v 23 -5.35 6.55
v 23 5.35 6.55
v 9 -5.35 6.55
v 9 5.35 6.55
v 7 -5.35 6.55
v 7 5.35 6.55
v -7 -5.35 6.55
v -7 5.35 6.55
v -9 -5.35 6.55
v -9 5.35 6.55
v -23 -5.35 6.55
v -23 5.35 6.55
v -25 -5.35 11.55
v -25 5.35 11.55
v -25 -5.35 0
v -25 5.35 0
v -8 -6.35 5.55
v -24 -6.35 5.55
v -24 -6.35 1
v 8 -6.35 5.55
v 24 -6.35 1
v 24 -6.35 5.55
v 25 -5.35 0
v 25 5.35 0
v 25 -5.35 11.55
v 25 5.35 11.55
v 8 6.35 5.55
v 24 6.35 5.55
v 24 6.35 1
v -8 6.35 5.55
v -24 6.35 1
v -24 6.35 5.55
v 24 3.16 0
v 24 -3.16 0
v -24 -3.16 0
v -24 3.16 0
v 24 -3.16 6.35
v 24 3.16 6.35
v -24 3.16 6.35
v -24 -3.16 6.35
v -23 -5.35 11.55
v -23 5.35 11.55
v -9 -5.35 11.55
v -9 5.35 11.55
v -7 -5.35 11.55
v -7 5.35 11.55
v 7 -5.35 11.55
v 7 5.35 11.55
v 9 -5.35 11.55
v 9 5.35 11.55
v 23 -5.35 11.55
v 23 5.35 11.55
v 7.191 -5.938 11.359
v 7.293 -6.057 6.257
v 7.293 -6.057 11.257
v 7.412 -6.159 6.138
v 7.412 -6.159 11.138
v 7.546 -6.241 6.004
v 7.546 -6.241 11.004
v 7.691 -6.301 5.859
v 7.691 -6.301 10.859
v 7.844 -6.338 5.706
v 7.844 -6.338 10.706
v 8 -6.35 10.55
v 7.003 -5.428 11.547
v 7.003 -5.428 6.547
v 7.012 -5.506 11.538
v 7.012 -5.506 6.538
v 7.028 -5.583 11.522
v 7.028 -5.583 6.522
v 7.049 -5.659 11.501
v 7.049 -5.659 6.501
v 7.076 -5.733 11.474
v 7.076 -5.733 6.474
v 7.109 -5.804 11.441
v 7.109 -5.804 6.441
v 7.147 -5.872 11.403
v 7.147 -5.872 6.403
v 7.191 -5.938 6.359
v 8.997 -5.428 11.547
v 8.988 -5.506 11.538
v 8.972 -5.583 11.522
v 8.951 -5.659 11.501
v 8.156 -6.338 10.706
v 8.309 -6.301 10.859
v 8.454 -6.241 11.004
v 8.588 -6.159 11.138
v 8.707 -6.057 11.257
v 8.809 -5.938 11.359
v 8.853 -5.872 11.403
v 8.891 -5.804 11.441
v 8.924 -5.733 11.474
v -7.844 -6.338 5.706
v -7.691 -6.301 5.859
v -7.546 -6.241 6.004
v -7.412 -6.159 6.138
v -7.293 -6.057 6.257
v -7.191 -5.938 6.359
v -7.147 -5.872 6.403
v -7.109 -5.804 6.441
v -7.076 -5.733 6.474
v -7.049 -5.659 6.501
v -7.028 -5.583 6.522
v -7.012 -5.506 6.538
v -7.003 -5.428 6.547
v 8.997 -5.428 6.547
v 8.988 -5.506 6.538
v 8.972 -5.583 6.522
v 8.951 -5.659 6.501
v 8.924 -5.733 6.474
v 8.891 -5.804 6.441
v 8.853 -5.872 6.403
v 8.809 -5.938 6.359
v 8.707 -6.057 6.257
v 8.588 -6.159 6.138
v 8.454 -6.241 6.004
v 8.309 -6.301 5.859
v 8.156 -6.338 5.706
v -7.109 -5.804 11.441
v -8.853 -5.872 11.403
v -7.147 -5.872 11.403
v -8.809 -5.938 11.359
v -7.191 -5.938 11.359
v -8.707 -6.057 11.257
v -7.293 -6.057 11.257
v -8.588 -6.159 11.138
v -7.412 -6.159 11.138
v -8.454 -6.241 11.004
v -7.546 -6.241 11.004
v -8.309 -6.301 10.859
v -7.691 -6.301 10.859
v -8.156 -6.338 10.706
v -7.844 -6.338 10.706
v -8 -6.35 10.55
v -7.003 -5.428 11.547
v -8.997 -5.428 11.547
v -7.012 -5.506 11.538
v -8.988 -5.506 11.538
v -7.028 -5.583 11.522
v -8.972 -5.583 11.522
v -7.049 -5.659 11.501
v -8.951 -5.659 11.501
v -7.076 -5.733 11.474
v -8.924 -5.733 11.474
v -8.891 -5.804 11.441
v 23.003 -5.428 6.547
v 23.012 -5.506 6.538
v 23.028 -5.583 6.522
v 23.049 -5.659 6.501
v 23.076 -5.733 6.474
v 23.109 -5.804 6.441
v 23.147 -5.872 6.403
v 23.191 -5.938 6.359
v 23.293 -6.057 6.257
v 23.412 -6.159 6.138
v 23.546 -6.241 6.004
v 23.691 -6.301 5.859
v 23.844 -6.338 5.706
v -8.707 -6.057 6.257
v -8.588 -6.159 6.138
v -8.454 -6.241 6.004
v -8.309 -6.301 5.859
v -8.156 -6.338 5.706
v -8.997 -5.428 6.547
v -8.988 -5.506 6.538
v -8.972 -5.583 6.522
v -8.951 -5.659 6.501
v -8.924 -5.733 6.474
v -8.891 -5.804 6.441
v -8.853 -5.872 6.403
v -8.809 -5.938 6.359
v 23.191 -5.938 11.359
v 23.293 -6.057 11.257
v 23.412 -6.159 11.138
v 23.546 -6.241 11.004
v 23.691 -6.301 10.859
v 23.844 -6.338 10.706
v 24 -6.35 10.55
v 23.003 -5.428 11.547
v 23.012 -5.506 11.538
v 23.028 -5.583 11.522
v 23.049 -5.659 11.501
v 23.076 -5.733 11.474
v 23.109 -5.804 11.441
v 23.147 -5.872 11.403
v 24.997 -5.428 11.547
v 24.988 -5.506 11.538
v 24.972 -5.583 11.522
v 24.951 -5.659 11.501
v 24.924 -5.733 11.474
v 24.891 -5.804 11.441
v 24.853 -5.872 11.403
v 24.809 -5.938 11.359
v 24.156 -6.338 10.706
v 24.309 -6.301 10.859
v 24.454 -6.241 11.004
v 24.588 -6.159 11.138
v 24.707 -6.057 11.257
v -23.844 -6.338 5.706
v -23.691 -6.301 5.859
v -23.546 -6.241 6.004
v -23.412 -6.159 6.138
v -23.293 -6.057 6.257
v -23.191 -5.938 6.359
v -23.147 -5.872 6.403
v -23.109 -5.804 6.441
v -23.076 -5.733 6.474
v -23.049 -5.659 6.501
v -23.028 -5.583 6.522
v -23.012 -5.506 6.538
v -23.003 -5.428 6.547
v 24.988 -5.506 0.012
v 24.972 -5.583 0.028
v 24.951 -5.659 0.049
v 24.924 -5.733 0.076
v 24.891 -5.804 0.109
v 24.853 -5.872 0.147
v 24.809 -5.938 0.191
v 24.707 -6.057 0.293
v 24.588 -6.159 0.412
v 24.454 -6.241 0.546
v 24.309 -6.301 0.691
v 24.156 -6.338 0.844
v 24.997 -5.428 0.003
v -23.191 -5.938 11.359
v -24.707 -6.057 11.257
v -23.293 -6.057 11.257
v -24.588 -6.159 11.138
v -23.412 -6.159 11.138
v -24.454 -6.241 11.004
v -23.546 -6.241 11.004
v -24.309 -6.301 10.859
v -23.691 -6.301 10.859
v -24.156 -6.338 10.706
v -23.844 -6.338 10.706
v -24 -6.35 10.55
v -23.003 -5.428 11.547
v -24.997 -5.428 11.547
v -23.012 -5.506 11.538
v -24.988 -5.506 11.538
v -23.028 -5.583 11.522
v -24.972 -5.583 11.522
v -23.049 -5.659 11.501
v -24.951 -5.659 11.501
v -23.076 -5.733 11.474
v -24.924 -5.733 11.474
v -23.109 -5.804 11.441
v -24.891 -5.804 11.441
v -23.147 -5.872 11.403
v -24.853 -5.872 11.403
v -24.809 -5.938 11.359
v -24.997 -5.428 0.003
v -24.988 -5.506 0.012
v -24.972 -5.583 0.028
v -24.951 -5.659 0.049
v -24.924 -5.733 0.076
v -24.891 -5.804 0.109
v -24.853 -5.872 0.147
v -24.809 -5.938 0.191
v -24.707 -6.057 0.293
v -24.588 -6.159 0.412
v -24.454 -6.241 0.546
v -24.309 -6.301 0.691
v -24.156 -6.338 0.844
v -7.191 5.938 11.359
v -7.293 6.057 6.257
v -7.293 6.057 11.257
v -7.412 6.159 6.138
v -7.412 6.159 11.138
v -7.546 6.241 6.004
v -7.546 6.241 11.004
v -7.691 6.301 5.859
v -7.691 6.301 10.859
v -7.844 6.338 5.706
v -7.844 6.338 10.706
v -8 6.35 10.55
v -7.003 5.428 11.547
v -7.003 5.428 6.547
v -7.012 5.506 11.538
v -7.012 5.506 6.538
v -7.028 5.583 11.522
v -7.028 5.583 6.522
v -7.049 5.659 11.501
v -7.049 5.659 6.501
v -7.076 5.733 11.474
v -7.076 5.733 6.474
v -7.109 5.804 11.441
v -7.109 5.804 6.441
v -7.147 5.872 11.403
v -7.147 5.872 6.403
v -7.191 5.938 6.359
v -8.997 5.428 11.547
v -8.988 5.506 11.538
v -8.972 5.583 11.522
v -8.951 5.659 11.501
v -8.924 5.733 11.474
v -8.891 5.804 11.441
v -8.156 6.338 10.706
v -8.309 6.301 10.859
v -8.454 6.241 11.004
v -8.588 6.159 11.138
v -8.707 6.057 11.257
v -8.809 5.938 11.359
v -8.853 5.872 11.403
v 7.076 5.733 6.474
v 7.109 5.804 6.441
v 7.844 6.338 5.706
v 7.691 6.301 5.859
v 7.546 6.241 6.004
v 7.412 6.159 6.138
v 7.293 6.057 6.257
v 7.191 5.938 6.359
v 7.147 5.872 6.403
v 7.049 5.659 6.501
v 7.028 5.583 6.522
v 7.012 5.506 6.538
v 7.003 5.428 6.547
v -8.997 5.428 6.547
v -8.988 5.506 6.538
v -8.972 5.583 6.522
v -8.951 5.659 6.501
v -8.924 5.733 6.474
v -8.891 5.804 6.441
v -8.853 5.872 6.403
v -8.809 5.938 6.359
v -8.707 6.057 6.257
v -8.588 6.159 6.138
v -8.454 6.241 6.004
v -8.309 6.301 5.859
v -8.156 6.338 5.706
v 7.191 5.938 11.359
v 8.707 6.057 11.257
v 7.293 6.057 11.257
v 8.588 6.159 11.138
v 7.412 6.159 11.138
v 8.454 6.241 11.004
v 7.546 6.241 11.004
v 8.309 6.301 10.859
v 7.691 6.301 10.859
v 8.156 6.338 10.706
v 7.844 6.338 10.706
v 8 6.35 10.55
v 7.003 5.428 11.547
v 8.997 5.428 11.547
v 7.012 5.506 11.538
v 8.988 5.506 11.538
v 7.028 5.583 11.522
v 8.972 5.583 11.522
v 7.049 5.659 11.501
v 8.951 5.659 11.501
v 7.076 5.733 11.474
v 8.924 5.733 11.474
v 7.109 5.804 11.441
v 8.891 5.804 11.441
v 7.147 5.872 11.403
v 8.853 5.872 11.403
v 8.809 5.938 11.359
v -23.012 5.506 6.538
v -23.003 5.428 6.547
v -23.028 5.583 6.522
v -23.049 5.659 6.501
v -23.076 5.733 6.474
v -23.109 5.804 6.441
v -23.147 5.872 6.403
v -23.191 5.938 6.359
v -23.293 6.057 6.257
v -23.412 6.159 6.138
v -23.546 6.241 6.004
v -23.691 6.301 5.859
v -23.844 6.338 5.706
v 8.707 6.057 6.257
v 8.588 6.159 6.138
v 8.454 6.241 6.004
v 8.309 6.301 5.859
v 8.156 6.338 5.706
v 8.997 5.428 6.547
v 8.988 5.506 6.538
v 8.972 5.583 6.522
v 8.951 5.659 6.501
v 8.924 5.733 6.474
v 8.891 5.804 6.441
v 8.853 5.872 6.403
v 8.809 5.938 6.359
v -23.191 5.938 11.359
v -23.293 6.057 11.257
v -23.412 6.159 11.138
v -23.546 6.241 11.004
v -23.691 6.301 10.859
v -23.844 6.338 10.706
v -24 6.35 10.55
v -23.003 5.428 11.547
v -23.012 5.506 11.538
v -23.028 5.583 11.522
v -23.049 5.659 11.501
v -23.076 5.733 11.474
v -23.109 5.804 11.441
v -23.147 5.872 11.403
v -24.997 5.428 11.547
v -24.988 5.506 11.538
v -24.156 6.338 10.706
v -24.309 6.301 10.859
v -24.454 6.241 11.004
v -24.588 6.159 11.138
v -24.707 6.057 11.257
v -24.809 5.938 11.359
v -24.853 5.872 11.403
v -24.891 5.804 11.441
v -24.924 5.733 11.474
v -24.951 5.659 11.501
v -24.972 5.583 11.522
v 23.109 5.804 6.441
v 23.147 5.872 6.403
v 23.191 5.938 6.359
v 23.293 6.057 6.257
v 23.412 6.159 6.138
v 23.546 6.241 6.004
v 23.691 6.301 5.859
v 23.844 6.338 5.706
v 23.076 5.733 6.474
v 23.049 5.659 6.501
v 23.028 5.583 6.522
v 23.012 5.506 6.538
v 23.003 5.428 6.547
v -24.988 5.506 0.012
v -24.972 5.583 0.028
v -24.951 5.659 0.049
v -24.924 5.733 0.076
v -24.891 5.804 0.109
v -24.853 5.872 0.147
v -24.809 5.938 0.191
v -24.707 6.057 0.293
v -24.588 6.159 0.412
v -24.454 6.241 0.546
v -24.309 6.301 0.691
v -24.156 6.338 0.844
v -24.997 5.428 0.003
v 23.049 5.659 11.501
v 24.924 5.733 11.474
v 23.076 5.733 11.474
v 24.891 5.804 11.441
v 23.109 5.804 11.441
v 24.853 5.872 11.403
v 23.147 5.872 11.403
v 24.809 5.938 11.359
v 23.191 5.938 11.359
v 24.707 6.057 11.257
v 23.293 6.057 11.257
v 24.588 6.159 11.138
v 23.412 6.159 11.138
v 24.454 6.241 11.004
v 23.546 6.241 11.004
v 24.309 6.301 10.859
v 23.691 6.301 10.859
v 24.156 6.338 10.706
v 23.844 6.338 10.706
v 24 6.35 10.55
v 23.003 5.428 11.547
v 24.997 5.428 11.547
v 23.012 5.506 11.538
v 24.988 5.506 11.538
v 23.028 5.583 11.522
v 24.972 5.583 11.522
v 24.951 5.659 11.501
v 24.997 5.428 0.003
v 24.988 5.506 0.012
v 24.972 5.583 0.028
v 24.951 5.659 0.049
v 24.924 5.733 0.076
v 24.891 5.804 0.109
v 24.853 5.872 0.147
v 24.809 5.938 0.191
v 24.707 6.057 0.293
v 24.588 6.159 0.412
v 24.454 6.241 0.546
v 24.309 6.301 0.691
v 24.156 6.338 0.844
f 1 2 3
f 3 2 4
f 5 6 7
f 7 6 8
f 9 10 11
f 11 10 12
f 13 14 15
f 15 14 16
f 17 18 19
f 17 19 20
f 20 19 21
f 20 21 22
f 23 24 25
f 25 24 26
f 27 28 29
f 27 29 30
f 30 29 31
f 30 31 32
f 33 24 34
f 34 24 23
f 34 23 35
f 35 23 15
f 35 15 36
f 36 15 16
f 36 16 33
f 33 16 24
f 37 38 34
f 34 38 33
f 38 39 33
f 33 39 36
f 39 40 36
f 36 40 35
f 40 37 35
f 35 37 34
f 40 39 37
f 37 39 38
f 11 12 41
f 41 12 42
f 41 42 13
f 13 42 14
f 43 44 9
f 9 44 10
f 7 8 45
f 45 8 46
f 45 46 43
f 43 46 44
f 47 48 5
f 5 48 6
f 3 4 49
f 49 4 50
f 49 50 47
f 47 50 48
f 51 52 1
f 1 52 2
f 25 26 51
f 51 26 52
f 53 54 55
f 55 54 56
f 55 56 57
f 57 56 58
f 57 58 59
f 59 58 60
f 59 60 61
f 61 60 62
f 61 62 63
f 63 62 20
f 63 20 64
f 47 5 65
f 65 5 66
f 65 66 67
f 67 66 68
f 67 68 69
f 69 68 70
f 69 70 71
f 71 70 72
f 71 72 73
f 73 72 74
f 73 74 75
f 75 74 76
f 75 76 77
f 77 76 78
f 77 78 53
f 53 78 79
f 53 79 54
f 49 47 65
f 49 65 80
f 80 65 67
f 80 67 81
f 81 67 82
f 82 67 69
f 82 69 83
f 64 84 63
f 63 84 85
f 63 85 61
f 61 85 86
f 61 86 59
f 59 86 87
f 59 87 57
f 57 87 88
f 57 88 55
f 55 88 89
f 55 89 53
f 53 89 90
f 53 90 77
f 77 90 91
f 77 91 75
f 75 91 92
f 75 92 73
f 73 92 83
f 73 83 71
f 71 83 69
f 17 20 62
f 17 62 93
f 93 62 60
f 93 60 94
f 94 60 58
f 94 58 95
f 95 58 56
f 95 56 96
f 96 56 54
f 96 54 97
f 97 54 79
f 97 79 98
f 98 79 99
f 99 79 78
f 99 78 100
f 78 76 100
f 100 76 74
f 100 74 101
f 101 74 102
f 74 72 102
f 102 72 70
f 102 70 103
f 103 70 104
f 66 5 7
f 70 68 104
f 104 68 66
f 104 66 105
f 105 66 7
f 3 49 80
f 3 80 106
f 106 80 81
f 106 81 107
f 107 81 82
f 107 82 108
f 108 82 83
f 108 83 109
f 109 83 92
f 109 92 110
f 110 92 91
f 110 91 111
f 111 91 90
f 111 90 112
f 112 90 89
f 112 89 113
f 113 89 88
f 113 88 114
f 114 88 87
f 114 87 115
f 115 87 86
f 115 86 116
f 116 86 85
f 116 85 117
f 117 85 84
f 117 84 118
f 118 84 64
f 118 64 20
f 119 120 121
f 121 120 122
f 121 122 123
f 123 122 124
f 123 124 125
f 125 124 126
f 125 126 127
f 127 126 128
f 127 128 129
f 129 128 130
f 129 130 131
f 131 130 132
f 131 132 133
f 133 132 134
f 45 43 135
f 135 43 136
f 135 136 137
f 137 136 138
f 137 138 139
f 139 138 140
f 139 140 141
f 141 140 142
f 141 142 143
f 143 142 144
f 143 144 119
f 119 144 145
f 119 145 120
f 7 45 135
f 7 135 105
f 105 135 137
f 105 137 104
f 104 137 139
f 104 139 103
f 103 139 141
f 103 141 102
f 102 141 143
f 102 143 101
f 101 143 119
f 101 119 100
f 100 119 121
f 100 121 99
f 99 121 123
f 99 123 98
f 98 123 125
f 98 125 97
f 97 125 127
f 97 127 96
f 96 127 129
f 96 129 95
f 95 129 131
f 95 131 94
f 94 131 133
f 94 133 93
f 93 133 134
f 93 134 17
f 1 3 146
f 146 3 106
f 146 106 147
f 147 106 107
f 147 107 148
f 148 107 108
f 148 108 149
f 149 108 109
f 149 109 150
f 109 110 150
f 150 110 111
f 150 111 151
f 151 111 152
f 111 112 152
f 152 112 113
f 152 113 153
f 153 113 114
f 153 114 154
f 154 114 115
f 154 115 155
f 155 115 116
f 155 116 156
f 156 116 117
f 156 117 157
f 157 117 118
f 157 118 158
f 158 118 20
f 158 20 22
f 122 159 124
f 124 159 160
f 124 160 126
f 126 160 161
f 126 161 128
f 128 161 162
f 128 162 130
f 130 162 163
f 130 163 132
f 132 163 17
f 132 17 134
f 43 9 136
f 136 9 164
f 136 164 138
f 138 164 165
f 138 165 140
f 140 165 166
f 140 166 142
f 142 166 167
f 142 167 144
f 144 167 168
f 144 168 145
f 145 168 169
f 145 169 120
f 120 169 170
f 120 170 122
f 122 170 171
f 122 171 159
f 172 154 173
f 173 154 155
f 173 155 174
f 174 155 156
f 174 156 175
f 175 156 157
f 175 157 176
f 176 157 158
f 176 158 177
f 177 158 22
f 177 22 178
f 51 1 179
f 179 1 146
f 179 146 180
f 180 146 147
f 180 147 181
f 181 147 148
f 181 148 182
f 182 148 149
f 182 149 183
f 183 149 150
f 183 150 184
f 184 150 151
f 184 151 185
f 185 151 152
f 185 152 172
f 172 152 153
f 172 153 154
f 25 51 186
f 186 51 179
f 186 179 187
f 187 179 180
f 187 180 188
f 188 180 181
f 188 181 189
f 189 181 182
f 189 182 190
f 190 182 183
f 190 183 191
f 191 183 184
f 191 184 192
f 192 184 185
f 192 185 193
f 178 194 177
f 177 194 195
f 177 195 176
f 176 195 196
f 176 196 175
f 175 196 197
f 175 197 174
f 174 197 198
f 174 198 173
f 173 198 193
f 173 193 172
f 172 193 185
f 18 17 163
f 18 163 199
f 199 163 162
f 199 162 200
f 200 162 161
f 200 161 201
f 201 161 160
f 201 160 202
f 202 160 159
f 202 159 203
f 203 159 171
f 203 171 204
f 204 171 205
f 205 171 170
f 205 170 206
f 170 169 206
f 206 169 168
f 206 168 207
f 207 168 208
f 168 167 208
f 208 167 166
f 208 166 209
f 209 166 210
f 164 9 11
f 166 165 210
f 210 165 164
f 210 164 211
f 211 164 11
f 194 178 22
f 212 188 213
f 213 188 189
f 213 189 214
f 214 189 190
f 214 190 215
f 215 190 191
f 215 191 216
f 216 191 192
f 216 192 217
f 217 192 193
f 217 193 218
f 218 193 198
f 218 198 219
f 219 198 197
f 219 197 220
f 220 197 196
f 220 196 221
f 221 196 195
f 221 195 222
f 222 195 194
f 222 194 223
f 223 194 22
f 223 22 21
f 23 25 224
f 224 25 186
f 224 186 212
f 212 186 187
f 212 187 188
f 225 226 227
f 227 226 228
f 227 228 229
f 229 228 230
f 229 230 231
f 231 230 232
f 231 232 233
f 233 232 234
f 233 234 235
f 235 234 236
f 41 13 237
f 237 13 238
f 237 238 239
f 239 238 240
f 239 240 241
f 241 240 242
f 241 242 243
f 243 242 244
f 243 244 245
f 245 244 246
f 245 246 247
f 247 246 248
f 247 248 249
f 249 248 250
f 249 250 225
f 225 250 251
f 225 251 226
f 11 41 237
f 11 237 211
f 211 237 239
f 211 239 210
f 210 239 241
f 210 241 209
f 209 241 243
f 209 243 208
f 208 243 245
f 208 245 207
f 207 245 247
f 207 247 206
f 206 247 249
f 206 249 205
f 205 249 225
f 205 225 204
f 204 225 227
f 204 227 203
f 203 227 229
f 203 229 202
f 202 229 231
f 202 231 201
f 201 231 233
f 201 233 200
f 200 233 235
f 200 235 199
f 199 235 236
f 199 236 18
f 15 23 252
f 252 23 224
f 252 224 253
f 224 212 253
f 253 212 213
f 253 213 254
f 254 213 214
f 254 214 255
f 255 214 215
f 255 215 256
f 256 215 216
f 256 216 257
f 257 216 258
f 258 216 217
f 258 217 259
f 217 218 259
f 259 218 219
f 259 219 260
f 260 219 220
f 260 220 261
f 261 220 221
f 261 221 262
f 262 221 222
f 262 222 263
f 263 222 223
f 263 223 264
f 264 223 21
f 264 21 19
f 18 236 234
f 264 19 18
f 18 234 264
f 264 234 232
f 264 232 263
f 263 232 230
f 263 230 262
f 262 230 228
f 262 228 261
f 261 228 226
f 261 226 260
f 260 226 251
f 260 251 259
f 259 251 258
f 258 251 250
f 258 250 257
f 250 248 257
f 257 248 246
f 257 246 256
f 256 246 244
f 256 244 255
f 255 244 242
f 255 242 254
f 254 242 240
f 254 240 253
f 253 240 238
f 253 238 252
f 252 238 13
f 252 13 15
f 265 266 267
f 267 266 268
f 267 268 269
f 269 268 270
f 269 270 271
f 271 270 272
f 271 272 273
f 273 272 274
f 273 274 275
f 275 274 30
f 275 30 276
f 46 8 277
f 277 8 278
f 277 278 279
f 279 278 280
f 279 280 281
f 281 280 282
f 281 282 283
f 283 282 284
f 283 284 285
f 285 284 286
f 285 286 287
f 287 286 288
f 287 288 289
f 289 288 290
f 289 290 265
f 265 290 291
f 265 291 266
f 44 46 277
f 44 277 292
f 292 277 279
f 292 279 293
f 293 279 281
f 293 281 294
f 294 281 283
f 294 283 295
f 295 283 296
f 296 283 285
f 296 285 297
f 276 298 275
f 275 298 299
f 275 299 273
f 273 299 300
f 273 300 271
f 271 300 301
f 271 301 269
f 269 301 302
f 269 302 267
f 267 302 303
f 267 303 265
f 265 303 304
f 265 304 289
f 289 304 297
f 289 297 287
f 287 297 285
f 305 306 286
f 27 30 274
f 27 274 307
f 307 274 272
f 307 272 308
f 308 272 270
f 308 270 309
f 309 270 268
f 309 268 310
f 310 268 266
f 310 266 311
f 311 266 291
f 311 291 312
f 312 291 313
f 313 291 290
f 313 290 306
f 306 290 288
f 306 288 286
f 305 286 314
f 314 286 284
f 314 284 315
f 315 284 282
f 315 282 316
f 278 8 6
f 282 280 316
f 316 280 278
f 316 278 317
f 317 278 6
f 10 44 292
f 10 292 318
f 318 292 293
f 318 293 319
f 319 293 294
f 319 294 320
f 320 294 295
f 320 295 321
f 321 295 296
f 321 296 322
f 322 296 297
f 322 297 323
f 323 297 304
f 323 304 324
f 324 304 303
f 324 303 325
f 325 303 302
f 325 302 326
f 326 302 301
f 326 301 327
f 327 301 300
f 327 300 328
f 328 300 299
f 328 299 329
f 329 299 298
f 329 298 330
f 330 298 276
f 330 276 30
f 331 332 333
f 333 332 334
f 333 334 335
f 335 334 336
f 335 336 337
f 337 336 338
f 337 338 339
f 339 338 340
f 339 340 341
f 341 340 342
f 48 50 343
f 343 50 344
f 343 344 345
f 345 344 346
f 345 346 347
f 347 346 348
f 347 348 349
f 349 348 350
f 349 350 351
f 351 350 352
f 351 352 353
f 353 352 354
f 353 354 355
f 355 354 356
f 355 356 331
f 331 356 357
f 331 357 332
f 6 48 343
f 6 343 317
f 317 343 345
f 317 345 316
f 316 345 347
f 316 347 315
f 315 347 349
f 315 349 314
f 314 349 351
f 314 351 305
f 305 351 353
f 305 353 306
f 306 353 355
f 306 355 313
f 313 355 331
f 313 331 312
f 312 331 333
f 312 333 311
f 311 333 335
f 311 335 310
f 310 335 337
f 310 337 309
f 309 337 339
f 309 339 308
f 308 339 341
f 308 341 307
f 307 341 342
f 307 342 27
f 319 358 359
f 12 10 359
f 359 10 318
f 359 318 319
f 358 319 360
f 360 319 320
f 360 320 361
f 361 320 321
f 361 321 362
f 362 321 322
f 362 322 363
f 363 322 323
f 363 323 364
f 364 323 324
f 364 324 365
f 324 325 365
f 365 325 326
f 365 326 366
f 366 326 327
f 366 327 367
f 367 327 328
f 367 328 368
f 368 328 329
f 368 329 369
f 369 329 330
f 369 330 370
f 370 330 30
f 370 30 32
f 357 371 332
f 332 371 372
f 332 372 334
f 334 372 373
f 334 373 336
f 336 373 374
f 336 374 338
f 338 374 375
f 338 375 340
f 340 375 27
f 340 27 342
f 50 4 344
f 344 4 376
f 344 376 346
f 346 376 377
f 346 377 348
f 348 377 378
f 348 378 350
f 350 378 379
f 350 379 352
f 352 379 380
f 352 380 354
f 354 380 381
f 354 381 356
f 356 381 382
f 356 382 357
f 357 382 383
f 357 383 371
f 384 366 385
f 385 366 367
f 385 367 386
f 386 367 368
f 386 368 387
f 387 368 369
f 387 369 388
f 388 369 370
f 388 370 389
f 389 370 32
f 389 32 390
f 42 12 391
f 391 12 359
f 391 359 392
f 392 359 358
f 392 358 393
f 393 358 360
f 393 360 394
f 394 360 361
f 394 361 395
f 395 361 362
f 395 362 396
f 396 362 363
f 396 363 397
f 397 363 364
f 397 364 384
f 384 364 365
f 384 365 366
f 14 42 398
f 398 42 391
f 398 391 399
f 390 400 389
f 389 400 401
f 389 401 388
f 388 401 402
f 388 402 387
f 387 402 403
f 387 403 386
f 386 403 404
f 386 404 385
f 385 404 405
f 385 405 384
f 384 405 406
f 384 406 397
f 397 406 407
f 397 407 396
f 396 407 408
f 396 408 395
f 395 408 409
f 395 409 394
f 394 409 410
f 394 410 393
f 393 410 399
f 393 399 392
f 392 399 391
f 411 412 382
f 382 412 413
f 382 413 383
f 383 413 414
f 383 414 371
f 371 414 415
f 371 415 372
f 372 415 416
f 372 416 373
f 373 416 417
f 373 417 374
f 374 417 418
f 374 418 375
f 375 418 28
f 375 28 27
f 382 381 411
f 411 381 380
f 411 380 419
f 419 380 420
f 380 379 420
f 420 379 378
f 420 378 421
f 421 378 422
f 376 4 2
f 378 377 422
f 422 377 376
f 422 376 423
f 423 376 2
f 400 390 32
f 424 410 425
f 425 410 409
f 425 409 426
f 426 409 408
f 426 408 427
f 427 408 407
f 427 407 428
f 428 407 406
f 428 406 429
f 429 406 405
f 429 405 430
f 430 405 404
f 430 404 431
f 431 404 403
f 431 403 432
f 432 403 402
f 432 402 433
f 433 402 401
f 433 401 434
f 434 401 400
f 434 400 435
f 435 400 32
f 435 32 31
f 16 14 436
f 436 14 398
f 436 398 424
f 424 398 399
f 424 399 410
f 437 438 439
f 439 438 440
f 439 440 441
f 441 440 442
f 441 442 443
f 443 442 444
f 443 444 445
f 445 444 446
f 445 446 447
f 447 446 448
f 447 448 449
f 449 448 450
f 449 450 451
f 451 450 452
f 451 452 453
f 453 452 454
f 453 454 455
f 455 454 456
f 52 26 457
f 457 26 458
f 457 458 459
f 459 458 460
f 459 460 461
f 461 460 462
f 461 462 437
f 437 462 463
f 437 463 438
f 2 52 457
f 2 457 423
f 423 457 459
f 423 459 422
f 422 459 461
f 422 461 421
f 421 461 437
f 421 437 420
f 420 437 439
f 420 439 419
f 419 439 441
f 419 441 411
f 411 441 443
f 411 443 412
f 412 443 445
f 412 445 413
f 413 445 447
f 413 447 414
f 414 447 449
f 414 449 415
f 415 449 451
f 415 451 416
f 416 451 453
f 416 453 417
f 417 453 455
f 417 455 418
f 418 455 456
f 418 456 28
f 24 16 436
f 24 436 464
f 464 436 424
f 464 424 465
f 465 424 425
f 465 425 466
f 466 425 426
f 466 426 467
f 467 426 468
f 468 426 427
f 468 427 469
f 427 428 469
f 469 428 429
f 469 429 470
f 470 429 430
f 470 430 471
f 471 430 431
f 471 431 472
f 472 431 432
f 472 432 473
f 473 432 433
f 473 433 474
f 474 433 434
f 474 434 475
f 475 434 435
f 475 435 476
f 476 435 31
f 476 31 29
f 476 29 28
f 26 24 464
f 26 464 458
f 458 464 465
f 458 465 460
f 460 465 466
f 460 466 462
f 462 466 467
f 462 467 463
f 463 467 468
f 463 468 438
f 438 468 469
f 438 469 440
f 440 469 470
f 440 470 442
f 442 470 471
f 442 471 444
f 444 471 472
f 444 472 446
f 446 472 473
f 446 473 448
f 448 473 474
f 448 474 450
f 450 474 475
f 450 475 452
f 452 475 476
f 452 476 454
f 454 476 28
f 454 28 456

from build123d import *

# Parameters (mm, degrees)
SKETCH1_W           = 50
SKETCH1_H           = 12.7
BOSS_EXTRUDE1_DEPTH = 6.55
SKETCH2_W           = 48
SKETCH2_H           = 6.32
CUT_EXTRUDE2_DEPTH  = 6.35
SKETCH3_W           = 2
SKETCH3_H           = 12.7
BOSS_EXTRUDE2_DEPTH = 5
LPATTERN1_COUNT     = 4
LPATTERN1_PITCH     = 16
FILLET1_R           = 1


with BuildPart() as part:
    # Sketch1 → Boss-Extrude1 (new body)
    with BuildSketch(Plane.XY):
        Rectangle(SKETCH1_W, SKETCH1_H)
    extrude(amount=BOSS_EXTRUDE1_DEPTH)

    # Sketch2 → Cut-Extrude2 (cut)
    with BuildSketch(Plane(origin=(0, 0, 0), x_dir=(-1, 0, 0), z_dir=(0, 0, -1))):
        Rectangle(SKETCH2_W, SKETCH2_H)
    extrude(amount=-CUT_EXTRUDE2_DEPTH, mode=Mode.SUBTRACT)

    # Sketch3 → Boss-Extrude2 (add)
    with BuildSketch(Plane.XY.offset(6.55)):
        with Locations((-24, 0)):
            Rectangle(SKETCH3_W, SKETCH3_H)
    boss_extrude2 = extrude(amount=BOSS_EXTRUDE2_DEPTH)

    # LPattern1: Boss-Extrude2 ×4
    with Locations(*[(i * LPATTERN1_PITCH, 0, 0) for i in range(1, LPATTERN1_COUNT)]):
        add(boss_extrude2)

    # Fillet1
    fillet1_edges = [part.edges().sort_by_distance(p)[0] for p in [
        (-16, -6.35, 6.55),
        (-23, -6.35, 9.05),
        (-23, 6.35, 9.05),
        (-24, -6.35, 11.55),
        (-24, 6.35, 11.55),
        (0, -6.35, 6.55),
        (-16, 6.35, 6.55),
        (-9, 6.35, 9.05),
        (-9, -6.35, 9.05),
        (-7, -6.35, 9.05),
        (-7, 6.35, 9.05),
        (-8, -6.35, 11.55),
        (-8, 6.35, 11.55),
        (0, 6.35, 0),
        (0, 6.35, 6.55),
        (16, -6.35, 6.55),
        (7, 6.35, 9.05),
        (7, -6.35, 9.05),
        (9, -6.35, 9.05),
        (9, 6.35, 9.05),
        (8, -6.35, 11.55),
        (8, 6.35, 11.55),
        (0, -6.35, 0),
        (16, 6.35, 6.55),
        (23, 6.35, 9.05),
        (23, -6.35, 9.05),
        (24, -6.35, 11.55),
        (24, 6.35, 11.55),
        (-25, 6.35, 5.775),
        (25, 6.35, 5.775),
        (25, -6.35, 5.775),
        (-25, -6.35, 5.775),
    ]]
    fillet(fillet1_edges, radius=FILLET1_R - 0.0001)  # a hair under: the kernel refuses the full size


solid = part.part
